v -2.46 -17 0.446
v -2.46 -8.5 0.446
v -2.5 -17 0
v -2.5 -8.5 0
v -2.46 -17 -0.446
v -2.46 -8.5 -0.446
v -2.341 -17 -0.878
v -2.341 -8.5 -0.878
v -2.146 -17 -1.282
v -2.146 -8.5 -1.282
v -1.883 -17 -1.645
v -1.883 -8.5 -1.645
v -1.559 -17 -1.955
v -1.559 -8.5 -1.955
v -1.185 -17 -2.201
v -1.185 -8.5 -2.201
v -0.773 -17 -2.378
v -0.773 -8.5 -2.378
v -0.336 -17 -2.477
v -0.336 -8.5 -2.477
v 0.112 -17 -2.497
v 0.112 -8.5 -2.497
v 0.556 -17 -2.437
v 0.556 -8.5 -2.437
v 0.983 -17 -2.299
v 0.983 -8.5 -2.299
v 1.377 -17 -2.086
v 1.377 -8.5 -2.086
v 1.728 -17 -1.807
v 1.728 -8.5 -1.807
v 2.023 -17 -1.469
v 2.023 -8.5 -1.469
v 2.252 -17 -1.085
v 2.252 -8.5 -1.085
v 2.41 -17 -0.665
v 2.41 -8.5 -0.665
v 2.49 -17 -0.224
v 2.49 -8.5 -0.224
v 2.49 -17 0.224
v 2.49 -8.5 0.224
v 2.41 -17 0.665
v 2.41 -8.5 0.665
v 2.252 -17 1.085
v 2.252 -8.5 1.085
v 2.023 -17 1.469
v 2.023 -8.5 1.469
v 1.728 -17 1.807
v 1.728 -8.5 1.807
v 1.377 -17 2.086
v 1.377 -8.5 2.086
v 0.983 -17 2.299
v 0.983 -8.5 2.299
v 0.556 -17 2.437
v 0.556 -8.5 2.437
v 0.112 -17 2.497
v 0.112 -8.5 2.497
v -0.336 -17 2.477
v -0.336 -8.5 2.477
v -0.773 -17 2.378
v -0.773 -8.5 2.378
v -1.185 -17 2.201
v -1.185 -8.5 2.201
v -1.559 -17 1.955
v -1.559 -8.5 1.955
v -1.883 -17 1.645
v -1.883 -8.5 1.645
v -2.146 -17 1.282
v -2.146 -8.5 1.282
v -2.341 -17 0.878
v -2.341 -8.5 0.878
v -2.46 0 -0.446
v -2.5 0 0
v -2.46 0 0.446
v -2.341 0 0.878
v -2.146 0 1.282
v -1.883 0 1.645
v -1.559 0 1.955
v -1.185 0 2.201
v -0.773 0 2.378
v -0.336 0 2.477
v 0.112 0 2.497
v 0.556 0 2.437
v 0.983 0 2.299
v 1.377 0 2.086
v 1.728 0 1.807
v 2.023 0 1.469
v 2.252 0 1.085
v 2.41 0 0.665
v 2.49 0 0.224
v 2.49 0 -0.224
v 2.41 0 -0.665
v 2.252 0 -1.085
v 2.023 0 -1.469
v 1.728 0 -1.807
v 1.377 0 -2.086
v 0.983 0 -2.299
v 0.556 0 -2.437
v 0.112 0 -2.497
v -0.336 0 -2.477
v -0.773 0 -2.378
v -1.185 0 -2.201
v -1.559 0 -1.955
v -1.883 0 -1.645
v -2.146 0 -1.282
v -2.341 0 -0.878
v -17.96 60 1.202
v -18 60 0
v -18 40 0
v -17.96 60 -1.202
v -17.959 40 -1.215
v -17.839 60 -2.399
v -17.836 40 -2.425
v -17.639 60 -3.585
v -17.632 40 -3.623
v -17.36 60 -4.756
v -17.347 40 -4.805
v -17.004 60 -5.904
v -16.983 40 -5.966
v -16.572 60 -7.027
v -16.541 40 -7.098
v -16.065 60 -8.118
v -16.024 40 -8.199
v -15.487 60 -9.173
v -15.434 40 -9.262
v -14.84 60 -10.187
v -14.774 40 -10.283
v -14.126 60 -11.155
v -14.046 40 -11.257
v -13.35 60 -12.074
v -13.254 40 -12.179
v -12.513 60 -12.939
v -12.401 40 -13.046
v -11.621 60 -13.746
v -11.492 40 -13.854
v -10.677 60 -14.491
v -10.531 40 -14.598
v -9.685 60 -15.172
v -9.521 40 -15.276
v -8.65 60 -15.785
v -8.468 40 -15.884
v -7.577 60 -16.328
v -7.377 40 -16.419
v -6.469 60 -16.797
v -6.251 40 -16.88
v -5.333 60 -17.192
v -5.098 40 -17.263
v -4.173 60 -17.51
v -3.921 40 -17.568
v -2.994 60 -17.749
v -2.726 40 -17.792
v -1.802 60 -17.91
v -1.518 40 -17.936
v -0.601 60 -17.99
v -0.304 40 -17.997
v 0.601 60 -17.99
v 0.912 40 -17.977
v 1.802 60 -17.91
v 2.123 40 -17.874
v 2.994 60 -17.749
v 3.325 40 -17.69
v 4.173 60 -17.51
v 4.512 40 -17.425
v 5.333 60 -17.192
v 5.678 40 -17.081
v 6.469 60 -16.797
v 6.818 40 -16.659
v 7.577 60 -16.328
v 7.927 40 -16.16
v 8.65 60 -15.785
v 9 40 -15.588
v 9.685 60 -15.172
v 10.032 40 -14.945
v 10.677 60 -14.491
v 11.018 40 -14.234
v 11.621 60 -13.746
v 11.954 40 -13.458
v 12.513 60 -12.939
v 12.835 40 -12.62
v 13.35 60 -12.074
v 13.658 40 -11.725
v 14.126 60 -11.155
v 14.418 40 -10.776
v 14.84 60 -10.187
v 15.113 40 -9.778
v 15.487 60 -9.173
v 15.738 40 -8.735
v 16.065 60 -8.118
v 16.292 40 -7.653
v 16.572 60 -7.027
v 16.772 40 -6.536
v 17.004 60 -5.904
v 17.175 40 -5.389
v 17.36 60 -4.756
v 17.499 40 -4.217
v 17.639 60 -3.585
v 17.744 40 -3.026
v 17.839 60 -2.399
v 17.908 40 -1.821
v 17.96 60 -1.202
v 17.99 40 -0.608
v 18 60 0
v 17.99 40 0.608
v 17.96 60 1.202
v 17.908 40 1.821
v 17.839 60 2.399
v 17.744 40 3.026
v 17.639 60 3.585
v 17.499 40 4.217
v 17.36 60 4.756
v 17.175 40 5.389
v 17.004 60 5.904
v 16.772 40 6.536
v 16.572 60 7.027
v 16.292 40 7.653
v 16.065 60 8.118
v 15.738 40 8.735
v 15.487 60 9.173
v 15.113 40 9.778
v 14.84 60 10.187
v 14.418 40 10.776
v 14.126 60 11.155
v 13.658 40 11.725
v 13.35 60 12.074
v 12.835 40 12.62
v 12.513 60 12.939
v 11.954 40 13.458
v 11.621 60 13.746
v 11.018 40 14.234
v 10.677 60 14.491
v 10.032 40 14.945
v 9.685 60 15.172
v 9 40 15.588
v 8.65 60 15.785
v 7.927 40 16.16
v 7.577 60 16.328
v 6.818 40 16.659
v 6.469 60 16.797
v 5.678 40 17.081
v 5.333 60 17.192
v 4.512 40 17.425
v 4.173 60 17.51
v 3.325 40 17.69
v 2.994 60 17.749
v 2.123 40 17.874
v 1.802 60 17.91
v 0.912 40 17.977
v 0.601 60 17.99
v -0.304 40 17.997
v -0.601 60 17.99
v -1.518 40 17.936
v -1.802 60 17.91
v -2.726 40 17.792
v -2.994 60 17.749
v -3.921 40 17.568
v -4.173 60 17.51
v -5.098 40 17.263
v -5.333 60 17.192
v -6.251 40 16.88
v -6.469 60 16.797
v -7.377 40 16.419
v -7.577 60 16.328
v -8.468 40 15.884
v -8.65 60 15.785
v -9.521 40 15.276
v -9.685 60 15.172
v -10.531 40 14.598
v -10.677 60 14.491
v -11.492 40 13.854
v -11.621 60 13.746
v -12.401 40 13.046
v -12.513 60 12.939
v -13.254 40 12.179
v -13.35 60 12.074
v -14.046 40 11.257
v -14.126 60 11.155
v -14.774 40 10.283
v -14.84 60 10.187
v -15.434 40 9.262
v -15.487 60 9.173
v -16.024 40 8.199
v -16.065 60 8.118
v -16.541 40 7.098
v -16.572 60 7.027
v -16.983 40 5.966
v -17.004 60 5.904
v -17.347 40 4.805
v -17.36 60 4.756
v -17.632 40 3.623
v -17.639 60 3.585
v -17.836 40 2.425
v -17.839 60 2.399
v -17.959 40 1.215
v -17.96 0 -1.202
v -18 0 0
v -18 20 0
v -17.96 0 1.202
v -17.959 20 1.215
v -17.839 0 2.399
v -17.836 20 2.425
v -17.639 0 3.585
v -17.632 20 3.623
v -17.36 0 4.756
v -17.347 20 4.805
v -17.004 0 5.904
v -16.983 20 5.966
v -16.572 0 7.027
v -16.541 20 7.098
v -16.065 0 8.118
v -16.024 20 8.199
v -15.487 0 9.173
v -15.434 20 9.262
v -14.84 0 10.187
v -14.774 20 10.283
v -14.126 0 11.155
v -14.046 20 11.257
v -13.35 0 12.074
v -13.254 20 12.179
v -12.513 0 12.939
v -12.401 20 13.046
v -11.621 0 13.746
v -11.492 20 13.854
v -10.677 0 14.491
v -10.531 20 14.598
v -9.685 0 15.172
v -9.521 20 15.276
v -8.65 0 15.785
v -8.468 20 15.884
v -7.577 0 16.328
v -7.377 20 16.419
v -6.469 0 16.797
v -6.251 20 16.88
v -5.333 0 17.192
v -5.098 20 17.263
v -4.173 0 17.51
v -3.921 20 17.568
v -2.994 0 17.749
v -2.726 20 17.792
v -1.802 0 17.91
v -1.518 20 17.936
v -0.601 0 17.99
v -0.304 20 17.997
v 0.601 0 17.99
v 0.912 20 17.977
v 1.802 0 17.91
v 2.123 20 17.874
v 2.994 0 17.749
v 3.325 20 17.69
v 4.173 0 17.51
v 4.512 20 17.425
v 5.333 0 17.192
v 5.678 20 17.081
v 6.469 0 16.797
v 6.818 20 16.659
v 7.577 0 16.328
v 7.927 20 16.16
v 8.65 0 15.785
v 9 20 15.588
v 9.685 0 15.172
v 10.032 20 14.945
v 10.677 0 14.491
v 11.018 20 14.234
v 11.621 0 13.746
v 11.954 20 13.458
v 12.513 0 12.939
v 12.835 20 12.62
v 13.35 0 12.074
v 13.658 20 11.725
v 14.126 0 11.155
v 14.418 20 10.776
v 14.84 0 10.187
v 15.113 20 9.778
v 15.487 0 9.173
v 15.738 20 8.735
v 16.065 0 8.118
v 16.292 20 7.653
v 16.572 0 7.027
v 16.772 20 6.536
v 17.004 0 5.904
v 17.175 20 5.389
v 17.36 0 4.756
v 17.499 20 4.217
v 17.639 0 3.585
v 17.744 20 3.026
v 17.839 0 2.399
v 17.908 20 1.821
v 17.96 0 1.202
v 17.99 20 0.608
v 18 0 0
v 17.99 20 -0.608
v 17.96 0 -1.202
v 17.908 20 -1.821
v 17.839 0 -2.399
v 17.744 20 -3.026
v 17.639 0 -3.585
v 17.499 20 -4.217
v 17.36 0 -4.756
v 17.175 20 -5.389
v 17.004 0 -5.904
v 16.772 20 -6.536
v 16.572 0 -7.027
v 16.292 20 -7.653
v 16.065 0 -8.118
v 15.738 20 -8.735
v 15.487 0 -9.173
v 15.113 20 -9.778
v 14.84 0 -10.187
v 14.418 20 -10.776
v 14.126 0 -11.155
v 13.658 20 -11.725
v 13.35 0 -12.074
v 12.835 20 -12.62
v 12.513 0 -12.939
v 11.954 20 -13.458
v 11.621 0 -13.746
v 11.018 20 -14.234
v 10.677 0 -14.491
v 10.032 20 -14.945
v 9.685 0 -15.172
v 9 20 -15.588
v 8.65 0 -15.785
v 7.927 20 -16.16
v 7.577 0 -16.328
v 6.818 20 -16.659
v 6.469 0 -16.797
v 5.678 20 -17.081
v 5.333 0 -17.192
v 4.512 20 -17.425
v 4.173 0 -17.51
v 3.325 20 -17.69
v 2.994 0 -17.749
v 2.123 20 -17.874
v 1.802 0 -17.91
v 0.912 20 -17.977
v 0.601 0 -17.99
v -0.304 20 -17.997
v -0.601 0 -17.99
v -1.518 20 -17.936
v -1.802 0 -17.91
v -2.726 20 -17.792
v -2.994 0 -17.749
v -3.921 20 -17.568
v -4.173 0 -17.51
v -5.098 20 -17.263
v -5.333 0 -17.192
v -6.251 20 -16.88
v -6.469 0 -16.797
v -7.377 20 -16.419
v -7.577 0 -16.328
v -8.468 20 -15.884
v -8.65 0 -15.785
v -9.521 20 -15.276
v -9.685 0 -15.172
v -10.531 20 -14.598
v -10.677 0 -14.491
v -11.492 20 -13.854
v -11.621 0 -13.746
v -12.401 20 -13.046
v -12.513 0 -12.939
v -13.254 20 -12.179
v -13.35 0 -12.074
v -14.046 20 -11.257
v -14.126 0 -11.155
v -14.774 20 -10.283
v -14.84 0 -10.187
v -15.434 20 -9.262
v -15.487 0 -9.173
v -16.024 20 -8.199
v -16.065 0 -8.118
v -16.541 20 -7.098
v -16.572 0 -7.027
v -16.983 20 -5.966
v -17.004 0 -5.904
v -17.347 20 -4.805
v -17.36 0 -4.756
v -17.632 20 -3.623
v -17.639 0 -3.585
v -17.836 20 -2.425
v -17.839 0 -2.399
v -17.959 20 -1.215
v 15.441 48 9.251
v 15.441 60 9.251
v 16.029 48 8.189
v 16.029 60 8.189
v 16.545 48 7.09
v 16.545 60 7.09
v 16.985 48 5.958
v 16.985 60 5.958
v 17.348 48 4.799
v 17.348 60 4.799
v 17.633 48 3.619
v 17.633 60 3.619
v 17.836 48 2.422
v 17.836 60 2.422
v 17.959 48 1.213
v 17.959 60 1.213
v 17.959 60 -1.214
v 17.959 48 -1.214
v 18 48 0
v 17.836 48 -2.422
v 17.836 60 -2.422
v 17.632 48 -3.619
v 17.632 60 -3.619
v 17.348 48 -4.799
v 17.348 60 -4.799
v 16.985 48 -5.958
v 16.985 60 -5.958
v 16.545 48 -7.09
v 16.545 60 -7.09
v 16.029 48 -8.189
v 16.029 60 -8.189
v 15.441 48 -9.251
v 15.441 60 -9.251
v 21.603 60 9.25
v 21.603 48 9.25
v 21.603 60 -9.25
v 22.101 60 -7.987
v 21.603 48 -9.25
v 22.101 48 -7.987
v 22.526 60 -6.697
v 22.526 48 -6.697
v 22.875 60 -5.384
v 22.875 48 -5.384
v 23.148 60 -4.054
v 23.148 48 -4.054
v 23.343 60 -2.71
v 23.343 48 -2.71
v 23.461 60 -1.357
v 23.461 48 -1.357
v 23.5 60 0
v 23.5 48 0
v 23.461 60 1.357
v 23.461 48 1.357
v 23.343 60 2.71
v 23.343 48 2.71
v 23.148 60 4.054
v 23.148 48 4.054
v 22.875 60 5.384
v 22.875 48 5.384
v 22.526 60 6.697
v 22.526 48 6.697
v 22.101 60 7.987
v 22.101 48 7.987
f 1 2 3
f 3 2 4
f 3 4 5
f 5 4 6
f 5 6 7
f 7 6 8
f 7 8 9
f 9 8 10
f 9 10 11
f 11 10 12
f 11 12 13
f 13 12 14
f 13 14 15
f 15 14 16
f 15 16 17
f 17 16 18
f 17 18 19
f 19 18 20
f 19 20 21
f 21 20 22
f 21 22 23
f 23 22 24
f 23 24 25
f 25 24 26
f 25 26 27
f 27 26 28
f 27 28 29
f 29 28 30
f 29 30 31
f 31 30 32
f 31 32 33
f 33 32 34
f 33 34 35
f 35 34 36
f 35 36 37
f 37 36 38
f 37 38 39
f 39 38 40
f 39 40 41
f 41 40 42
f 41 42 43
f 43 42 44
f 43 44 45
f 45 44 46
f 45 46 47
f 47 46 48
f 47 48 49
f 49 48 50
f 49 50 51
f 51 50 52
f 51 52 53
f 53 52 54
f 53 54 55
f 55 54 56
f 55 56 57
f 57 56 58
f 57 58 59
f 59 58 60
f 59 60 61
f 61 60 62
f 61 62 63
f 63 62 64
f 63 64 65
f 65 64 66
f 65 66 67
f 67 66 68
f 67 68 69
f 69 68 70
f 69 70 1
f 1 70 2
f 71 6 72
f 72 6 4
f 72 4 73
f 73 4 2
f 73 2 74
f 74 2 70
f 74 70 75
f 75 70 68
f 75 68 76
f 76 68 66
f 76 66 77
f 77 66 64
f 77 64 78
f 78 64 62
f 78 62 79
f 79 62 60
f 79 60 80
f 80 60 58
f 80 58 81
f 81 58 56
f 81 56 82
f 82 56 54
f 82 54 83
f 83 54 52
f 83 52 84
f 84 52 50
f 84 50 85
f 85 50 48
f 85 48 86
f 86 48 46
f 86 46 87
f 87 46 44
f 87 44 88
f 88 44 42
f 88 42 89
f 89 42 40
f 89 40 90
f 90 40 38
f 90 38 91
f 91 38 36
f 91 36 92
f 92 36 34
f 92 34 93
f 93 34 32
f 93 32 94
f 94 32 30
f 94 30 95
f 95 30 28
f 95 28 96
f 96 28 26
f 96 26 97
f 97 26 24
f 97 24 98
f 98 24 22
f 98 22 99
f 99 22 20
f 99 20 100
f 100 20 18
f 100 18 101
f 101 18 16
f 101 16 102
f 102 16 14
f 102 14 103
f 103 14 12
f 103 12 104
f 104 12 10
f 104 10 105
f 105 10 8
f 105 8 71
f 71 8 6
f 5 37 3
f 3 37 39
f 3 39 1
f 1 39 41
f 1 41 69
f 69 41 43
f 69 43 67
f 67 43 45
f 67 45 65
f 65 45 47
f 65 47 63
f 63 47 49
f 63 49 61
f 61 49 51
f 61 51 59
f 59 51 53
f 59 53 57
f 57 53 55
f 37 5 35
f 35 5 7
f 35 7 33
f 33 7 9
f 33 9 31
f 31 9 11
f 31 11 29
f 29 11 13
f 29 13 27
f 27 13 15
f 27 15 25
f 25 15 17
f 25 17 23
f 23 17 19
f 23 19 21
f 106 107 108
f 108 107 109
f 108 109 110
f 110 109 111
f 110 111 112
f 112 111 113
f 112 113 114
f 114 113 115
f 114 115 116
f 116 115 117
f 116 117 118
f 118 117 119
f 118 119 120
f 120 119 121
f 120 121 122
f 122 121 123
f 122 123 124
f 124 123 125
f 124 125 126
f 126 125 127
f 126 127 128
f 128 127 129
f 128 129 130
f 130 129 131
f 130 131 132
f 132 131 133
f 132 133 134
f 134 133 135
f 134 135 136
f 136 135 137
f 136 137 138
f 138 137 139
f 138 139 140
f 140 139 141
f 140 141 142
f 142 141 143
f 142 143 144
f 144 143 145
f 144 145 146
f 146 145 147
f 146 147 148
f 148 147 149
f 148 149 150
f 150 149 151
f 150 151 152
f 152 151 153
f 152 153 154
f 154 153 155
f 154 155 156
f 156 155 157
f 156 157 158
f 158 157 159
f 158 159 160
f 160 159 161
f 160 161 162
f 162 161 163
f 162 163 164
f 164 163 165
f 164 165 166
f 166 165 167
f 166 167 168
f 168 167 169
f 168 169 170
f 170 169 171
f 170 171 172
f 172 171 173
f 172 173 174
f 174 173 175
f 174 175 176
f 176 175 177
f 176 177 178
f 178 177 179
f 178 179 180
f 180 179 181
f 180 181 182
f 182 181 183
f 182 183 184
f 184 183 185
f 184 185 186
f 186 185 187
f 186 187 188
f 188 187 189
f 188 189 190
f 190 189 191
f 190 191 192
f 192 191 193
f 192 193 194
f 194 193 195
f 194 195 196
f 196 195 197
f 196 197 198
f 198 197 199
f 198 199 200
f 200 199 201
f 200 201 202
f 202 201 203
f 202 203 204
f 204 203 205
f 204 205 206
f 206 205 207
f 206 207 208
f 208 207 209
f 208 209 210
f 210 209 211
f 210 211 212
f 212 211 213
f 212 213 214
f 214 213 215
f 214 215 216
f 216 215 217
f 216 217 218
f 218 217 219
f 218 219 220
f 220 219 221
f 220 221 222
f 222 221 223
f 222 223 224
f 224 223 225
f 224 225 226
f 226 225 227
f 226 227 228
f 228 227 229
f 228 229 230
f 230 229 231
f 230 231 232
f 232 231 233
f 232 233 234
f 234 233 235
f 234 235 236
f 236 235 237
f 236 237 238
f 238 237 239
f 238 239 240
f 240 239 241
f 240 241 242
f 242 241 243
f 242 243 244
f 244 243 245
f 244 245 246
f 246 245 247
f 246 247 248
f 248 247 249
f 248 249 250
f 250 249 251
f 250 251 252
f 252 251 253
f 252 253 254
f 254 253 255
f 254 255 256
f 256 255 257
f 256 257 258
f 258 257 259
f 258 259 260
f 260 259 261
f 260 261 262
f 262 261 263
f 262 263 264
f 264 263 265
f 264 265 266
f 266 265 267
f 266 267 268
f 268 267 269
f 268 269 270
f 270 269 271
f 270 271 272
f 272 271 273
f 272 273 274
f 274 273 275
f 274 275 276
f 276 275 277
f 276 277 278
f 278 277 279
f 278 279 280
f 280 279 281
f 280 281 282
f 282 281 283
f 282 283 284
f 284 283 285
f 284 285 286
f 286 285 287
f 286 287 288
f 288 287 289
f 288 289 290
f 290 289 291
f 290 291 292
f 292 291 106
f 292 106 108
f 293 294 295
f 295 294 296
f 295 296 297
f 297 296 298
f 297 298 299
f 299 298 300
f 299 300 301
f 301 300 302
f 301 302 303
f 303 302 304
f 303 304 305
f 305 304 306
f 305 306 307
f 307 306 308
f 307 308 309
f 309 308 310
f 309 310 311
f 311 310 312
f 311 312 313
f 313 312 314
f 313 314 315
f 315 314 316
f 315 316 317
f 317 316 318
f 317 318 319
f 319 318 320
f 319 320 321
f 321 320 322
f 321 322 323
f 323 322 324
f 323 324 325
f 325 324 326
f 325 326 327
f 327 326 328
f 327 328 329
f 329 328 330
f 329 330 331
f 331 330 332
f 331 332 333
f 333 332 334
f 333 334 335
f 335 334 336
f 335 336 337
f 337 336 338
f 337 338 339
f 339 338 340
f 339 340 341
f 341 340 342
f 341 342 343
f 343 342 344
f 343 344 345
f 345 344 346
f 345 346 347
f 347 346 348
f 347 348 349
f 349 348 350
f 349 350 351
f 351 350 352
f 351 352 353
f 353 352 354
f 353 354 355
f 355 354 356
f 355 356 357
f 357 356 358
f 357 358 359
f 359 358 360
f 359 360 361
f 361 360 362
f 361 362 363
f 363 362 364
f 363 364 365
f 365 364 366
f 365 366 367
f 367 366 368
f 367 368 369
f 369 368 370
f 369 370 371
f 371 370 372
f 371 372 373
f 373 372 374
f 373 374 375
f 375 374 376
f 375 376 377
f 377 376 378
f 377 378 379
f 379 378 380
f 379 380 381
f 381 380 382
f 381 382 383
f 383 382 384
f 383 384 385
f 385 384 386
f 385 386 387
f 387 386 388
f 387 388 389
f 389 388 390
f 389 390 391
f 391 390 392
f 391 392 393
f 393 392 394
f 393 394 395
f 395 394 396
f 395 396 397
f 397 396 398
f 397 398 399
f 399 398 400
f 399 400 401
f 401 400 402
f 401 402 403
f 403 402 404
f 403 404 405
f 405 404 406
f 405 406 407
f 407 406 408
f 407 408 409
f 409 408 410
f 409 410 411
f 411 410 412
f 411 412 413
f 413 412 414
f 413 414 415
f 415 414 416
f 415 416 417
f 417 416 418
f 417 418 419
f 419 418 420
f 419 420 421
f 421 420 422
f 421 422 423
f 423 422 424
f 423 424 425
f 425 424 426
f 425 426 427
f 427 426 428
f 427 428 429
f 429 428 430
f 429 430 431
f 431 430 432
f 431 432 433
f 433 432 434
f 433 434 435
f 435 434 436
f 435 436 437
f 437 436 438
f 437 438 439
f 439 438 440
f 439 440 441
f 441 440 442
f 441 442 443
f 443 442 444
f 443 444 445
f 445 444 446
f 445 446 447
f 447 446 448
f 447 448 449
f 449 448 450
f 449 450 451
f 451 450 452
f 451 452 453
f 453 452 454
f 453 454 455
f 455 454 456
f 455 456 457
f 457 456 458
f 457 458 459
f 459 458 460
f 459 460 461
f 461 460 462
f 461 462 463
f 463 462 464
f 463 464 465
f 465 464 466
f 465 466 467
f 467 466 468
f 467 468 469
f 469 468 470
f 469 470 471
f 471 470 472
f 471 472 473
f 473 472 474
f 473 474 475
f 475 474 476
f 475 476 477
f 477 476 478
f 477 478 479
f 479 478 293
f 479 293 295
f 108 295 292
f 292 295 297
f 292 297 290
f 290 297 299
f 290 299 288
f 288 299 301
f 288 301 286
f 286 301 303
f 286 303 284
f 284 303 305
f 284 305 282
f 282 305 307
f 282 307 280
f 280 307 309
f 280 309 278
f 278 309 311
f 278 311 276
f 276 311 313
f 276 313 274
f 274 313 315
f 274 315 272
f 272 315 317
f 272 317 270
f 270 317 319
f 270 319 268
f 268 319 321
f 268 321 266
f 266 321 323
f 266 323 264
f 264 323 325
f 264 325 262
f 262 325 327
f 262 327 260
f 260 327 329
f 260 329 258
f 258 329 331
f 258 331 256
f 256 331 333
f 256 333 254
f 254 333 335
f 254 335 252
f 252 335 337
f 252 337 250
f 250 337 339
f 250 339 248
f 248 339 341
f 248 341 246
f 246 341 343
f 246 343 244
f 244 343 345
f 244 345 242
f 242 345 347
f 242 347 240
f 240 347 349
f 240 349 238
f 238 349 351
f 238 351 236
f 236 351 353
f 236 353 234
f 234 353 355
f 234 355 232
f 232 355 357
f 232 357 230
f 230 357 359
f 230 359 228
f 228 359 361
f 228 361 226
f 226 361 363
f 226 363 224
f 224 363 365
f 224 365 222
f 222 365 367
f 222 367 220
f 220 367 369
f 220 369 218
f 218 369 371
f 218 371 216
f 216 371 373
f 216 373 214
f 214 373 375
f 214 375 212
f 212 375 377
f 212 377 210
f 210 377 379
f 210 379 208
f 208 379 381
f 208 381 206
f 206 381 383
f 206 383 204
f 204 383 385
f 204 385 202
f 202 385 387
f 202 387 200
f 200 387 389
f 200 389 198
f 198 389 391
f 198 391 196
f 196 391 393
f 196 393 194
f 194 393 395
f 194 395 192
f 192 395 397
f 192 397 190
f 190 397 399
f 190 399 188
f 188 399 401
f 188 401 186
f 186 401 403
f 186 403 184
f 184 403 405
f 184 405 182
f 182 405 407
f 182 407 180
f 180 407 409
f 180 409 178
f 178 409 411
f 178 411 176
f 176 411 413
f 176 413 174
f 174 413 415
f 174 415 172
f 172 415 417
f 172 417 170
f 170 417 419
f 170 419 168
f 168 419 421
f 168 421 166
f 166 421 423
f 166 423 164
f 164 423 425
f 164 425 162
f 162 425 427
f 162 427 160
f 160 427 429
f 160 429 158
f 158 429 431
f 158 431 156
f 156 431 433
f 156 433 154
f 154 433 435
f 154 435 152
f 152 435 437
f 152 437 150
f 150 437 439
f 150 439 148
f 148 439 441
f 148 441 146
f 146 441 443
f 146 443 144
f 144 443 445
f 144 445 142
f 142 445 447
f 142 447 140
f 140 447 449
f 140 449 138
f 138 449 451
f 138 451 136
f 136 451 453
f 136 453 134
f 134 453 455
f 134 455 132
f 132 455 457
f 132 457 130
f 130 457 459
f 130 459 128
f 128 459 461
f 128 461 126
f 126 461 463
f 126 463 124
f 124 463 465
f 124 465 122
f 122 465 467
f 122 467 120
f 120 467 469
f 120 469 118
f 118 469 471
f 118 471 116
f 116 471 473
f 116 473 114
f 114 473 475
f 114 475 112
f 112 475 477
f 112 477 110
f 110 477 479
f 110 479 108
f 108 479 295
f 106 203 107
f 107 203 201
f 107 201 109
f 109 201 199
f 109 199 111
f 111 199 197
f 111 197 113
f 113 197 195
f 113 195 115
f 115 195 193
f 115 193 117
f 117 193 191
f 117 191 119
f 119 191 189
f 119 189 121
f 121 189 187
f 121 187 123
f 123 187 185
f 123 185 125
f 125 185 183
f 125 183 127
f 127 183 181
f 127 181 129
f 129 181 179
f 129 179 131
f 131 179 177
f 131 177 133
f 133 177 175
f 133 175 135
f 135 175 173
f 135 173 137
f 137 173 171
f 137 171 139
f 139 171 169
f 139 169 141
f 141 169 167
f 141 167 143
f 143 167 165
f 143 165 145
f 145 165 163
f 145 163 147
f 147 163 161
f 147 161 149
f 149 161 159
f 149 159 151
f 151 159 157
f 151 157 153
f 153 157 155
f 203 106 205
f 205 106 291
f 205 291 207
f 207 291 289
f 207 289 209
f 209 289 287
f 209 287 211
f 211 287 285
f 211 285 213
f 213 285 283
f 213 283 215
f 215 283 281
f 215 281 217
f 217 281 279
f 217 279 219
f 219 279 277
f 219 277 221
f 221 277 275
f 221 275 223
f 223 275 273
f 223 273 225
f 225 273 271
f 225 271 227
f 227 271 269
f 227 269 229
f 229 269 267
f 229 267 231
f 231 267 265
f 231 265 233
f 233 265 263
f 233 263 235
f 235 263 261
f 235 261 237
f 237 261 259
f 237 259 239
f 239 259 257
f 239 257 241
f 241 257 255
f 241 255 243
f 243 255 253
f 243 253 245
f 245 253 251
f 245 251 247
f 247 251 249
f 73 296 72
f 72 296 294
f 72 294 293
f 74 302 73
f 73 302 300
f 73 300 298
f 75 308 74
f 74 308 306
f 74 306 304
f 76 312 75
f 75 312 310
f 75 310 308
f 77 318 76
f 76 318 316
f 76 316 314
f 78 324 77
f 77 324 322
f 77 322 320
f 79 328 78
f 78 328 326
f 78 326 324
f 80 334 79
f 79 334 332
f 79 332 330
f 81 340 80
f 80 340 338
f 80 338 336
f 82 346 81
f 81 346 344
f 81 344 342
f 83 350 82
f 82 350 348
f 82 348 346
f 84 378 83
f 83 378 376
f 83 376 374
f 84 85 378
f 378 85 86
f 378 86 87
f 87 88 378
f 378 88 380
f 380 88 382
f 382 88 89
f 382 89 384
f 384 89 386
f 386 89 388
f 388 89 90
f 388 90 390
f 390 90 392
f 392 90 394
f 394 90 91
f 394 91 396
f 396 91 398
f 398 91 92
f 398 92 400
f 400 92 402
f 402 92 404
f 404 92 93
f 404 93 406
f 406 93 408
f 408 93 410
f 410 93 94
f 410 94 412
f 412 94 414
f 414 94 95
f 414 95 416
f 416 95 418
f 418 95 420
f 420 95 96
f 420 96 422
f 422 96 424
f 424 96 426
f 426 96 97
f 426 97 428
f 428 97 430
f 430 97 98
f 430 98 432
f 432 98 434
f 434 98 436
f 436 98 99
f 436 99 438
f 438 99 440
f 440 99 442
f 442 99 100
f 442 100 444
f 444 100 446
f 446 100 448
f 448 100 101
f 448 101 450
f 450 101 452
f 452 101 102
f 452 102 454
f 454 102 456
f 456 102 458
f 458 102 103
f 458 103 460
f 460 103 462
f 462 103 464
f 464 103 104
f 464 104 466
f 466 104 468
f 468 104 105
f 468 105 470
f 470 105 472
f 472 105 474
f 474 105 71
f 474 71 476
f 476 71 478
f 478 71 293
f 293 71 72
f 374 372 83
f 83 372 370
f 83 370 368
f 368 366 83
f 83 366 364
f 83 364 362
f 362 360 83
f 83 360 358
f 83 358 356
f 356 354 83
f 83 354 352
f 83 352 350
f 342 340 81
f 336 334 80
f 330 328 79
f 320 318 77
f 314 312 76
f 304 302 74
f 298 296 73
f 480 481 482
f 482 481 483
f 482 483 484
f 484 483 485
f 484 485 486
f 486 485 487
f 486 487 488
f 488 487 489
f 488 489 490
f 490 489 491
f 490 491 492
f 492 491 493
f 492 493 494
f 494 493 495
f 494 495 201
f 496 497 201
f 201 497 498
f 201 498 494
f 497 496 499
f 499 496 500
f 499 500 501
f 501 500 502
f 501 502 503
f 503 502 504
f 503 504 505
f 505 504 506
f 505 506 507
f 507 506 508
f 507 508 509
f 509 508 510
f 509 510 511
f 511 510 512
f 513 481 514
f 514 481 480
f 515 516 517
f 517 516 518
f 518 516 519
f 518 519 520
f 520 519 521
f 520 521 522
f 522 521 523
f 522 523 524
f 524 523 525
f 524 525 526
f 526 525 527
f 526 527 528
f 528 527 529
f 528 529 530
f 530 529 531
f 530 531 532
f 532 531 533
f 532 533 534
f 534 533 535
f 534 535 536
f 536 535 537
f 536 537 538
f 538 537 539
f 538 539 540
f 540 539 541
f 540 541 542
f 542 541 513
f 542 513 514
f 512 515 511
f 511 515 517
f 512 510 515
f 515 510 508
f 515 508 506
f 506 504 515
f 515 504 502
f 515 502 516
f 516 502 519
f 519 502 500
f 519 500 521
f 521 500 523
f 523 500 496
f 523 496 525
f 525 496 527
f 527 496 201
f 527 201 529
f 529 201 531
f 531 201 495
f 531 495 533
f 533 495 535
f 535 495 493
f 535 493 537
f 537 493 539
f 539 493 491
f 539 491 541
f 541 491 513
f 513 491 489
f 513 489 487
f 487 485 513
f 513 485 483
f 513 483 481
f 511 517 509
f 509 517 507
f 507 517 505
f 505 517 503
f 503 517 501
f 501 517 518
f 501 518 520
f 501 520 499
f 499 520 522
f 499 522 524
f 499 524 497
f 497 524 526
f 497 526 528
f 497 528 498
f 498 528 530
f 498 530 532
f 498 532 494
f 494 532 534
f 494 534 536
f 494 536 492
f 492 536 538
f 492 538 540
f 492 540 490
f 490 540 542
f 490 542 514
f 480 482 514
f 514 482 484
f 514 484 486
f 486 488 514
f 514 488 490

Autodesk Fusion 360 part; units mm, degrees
sketch "Sketch1" plane through (0, 0, 0) normal (0, 1, 0) x (1, 0, 0)
  circle A0 centre (0, 0) radius 18
  dimension "d1" = 36
extrude "Extrude1" add sketch "Sketch1" along normal blind 60 makes body 1
sketch "Sketch2" plane through (0, 0, 0) normal (0, -1, 0) x (1, 0, 0)
  circle A0 centre (0, 0) radius 18
  circle A1 centre (0, 0) radius 2.5
  dimension "d4" = 5
extrude "Extrude2" add sketch "Sketch2" along normal blind 17 contours A1 bodies 1
sketch "Sketch3" plane through (0, 60, 0) normal (0, 1, 0) x (-1, 0, 0)
  circle A0 centre (0, 0) radius 18
  arc A1 (-21.603, 9.25) -> (-21.603, -9.25) centre (0, 0) ccw
  line L0 (-21.603, -9.25) -> (-15.4407, -9.2513)
  line L1 (-21.603, 9.25) -> (-15.4408, 9.2511)
  dimension "d7" = 23.5
  dimension "d8" = 18.5
  dimension "d9" = 6.1623
  dimension "d10" = 6.1622
extrude "Extrude3" add sketch "Sketch3" against normal blind 12 separate body contours A0 A1 L0 L1 makes body 2
